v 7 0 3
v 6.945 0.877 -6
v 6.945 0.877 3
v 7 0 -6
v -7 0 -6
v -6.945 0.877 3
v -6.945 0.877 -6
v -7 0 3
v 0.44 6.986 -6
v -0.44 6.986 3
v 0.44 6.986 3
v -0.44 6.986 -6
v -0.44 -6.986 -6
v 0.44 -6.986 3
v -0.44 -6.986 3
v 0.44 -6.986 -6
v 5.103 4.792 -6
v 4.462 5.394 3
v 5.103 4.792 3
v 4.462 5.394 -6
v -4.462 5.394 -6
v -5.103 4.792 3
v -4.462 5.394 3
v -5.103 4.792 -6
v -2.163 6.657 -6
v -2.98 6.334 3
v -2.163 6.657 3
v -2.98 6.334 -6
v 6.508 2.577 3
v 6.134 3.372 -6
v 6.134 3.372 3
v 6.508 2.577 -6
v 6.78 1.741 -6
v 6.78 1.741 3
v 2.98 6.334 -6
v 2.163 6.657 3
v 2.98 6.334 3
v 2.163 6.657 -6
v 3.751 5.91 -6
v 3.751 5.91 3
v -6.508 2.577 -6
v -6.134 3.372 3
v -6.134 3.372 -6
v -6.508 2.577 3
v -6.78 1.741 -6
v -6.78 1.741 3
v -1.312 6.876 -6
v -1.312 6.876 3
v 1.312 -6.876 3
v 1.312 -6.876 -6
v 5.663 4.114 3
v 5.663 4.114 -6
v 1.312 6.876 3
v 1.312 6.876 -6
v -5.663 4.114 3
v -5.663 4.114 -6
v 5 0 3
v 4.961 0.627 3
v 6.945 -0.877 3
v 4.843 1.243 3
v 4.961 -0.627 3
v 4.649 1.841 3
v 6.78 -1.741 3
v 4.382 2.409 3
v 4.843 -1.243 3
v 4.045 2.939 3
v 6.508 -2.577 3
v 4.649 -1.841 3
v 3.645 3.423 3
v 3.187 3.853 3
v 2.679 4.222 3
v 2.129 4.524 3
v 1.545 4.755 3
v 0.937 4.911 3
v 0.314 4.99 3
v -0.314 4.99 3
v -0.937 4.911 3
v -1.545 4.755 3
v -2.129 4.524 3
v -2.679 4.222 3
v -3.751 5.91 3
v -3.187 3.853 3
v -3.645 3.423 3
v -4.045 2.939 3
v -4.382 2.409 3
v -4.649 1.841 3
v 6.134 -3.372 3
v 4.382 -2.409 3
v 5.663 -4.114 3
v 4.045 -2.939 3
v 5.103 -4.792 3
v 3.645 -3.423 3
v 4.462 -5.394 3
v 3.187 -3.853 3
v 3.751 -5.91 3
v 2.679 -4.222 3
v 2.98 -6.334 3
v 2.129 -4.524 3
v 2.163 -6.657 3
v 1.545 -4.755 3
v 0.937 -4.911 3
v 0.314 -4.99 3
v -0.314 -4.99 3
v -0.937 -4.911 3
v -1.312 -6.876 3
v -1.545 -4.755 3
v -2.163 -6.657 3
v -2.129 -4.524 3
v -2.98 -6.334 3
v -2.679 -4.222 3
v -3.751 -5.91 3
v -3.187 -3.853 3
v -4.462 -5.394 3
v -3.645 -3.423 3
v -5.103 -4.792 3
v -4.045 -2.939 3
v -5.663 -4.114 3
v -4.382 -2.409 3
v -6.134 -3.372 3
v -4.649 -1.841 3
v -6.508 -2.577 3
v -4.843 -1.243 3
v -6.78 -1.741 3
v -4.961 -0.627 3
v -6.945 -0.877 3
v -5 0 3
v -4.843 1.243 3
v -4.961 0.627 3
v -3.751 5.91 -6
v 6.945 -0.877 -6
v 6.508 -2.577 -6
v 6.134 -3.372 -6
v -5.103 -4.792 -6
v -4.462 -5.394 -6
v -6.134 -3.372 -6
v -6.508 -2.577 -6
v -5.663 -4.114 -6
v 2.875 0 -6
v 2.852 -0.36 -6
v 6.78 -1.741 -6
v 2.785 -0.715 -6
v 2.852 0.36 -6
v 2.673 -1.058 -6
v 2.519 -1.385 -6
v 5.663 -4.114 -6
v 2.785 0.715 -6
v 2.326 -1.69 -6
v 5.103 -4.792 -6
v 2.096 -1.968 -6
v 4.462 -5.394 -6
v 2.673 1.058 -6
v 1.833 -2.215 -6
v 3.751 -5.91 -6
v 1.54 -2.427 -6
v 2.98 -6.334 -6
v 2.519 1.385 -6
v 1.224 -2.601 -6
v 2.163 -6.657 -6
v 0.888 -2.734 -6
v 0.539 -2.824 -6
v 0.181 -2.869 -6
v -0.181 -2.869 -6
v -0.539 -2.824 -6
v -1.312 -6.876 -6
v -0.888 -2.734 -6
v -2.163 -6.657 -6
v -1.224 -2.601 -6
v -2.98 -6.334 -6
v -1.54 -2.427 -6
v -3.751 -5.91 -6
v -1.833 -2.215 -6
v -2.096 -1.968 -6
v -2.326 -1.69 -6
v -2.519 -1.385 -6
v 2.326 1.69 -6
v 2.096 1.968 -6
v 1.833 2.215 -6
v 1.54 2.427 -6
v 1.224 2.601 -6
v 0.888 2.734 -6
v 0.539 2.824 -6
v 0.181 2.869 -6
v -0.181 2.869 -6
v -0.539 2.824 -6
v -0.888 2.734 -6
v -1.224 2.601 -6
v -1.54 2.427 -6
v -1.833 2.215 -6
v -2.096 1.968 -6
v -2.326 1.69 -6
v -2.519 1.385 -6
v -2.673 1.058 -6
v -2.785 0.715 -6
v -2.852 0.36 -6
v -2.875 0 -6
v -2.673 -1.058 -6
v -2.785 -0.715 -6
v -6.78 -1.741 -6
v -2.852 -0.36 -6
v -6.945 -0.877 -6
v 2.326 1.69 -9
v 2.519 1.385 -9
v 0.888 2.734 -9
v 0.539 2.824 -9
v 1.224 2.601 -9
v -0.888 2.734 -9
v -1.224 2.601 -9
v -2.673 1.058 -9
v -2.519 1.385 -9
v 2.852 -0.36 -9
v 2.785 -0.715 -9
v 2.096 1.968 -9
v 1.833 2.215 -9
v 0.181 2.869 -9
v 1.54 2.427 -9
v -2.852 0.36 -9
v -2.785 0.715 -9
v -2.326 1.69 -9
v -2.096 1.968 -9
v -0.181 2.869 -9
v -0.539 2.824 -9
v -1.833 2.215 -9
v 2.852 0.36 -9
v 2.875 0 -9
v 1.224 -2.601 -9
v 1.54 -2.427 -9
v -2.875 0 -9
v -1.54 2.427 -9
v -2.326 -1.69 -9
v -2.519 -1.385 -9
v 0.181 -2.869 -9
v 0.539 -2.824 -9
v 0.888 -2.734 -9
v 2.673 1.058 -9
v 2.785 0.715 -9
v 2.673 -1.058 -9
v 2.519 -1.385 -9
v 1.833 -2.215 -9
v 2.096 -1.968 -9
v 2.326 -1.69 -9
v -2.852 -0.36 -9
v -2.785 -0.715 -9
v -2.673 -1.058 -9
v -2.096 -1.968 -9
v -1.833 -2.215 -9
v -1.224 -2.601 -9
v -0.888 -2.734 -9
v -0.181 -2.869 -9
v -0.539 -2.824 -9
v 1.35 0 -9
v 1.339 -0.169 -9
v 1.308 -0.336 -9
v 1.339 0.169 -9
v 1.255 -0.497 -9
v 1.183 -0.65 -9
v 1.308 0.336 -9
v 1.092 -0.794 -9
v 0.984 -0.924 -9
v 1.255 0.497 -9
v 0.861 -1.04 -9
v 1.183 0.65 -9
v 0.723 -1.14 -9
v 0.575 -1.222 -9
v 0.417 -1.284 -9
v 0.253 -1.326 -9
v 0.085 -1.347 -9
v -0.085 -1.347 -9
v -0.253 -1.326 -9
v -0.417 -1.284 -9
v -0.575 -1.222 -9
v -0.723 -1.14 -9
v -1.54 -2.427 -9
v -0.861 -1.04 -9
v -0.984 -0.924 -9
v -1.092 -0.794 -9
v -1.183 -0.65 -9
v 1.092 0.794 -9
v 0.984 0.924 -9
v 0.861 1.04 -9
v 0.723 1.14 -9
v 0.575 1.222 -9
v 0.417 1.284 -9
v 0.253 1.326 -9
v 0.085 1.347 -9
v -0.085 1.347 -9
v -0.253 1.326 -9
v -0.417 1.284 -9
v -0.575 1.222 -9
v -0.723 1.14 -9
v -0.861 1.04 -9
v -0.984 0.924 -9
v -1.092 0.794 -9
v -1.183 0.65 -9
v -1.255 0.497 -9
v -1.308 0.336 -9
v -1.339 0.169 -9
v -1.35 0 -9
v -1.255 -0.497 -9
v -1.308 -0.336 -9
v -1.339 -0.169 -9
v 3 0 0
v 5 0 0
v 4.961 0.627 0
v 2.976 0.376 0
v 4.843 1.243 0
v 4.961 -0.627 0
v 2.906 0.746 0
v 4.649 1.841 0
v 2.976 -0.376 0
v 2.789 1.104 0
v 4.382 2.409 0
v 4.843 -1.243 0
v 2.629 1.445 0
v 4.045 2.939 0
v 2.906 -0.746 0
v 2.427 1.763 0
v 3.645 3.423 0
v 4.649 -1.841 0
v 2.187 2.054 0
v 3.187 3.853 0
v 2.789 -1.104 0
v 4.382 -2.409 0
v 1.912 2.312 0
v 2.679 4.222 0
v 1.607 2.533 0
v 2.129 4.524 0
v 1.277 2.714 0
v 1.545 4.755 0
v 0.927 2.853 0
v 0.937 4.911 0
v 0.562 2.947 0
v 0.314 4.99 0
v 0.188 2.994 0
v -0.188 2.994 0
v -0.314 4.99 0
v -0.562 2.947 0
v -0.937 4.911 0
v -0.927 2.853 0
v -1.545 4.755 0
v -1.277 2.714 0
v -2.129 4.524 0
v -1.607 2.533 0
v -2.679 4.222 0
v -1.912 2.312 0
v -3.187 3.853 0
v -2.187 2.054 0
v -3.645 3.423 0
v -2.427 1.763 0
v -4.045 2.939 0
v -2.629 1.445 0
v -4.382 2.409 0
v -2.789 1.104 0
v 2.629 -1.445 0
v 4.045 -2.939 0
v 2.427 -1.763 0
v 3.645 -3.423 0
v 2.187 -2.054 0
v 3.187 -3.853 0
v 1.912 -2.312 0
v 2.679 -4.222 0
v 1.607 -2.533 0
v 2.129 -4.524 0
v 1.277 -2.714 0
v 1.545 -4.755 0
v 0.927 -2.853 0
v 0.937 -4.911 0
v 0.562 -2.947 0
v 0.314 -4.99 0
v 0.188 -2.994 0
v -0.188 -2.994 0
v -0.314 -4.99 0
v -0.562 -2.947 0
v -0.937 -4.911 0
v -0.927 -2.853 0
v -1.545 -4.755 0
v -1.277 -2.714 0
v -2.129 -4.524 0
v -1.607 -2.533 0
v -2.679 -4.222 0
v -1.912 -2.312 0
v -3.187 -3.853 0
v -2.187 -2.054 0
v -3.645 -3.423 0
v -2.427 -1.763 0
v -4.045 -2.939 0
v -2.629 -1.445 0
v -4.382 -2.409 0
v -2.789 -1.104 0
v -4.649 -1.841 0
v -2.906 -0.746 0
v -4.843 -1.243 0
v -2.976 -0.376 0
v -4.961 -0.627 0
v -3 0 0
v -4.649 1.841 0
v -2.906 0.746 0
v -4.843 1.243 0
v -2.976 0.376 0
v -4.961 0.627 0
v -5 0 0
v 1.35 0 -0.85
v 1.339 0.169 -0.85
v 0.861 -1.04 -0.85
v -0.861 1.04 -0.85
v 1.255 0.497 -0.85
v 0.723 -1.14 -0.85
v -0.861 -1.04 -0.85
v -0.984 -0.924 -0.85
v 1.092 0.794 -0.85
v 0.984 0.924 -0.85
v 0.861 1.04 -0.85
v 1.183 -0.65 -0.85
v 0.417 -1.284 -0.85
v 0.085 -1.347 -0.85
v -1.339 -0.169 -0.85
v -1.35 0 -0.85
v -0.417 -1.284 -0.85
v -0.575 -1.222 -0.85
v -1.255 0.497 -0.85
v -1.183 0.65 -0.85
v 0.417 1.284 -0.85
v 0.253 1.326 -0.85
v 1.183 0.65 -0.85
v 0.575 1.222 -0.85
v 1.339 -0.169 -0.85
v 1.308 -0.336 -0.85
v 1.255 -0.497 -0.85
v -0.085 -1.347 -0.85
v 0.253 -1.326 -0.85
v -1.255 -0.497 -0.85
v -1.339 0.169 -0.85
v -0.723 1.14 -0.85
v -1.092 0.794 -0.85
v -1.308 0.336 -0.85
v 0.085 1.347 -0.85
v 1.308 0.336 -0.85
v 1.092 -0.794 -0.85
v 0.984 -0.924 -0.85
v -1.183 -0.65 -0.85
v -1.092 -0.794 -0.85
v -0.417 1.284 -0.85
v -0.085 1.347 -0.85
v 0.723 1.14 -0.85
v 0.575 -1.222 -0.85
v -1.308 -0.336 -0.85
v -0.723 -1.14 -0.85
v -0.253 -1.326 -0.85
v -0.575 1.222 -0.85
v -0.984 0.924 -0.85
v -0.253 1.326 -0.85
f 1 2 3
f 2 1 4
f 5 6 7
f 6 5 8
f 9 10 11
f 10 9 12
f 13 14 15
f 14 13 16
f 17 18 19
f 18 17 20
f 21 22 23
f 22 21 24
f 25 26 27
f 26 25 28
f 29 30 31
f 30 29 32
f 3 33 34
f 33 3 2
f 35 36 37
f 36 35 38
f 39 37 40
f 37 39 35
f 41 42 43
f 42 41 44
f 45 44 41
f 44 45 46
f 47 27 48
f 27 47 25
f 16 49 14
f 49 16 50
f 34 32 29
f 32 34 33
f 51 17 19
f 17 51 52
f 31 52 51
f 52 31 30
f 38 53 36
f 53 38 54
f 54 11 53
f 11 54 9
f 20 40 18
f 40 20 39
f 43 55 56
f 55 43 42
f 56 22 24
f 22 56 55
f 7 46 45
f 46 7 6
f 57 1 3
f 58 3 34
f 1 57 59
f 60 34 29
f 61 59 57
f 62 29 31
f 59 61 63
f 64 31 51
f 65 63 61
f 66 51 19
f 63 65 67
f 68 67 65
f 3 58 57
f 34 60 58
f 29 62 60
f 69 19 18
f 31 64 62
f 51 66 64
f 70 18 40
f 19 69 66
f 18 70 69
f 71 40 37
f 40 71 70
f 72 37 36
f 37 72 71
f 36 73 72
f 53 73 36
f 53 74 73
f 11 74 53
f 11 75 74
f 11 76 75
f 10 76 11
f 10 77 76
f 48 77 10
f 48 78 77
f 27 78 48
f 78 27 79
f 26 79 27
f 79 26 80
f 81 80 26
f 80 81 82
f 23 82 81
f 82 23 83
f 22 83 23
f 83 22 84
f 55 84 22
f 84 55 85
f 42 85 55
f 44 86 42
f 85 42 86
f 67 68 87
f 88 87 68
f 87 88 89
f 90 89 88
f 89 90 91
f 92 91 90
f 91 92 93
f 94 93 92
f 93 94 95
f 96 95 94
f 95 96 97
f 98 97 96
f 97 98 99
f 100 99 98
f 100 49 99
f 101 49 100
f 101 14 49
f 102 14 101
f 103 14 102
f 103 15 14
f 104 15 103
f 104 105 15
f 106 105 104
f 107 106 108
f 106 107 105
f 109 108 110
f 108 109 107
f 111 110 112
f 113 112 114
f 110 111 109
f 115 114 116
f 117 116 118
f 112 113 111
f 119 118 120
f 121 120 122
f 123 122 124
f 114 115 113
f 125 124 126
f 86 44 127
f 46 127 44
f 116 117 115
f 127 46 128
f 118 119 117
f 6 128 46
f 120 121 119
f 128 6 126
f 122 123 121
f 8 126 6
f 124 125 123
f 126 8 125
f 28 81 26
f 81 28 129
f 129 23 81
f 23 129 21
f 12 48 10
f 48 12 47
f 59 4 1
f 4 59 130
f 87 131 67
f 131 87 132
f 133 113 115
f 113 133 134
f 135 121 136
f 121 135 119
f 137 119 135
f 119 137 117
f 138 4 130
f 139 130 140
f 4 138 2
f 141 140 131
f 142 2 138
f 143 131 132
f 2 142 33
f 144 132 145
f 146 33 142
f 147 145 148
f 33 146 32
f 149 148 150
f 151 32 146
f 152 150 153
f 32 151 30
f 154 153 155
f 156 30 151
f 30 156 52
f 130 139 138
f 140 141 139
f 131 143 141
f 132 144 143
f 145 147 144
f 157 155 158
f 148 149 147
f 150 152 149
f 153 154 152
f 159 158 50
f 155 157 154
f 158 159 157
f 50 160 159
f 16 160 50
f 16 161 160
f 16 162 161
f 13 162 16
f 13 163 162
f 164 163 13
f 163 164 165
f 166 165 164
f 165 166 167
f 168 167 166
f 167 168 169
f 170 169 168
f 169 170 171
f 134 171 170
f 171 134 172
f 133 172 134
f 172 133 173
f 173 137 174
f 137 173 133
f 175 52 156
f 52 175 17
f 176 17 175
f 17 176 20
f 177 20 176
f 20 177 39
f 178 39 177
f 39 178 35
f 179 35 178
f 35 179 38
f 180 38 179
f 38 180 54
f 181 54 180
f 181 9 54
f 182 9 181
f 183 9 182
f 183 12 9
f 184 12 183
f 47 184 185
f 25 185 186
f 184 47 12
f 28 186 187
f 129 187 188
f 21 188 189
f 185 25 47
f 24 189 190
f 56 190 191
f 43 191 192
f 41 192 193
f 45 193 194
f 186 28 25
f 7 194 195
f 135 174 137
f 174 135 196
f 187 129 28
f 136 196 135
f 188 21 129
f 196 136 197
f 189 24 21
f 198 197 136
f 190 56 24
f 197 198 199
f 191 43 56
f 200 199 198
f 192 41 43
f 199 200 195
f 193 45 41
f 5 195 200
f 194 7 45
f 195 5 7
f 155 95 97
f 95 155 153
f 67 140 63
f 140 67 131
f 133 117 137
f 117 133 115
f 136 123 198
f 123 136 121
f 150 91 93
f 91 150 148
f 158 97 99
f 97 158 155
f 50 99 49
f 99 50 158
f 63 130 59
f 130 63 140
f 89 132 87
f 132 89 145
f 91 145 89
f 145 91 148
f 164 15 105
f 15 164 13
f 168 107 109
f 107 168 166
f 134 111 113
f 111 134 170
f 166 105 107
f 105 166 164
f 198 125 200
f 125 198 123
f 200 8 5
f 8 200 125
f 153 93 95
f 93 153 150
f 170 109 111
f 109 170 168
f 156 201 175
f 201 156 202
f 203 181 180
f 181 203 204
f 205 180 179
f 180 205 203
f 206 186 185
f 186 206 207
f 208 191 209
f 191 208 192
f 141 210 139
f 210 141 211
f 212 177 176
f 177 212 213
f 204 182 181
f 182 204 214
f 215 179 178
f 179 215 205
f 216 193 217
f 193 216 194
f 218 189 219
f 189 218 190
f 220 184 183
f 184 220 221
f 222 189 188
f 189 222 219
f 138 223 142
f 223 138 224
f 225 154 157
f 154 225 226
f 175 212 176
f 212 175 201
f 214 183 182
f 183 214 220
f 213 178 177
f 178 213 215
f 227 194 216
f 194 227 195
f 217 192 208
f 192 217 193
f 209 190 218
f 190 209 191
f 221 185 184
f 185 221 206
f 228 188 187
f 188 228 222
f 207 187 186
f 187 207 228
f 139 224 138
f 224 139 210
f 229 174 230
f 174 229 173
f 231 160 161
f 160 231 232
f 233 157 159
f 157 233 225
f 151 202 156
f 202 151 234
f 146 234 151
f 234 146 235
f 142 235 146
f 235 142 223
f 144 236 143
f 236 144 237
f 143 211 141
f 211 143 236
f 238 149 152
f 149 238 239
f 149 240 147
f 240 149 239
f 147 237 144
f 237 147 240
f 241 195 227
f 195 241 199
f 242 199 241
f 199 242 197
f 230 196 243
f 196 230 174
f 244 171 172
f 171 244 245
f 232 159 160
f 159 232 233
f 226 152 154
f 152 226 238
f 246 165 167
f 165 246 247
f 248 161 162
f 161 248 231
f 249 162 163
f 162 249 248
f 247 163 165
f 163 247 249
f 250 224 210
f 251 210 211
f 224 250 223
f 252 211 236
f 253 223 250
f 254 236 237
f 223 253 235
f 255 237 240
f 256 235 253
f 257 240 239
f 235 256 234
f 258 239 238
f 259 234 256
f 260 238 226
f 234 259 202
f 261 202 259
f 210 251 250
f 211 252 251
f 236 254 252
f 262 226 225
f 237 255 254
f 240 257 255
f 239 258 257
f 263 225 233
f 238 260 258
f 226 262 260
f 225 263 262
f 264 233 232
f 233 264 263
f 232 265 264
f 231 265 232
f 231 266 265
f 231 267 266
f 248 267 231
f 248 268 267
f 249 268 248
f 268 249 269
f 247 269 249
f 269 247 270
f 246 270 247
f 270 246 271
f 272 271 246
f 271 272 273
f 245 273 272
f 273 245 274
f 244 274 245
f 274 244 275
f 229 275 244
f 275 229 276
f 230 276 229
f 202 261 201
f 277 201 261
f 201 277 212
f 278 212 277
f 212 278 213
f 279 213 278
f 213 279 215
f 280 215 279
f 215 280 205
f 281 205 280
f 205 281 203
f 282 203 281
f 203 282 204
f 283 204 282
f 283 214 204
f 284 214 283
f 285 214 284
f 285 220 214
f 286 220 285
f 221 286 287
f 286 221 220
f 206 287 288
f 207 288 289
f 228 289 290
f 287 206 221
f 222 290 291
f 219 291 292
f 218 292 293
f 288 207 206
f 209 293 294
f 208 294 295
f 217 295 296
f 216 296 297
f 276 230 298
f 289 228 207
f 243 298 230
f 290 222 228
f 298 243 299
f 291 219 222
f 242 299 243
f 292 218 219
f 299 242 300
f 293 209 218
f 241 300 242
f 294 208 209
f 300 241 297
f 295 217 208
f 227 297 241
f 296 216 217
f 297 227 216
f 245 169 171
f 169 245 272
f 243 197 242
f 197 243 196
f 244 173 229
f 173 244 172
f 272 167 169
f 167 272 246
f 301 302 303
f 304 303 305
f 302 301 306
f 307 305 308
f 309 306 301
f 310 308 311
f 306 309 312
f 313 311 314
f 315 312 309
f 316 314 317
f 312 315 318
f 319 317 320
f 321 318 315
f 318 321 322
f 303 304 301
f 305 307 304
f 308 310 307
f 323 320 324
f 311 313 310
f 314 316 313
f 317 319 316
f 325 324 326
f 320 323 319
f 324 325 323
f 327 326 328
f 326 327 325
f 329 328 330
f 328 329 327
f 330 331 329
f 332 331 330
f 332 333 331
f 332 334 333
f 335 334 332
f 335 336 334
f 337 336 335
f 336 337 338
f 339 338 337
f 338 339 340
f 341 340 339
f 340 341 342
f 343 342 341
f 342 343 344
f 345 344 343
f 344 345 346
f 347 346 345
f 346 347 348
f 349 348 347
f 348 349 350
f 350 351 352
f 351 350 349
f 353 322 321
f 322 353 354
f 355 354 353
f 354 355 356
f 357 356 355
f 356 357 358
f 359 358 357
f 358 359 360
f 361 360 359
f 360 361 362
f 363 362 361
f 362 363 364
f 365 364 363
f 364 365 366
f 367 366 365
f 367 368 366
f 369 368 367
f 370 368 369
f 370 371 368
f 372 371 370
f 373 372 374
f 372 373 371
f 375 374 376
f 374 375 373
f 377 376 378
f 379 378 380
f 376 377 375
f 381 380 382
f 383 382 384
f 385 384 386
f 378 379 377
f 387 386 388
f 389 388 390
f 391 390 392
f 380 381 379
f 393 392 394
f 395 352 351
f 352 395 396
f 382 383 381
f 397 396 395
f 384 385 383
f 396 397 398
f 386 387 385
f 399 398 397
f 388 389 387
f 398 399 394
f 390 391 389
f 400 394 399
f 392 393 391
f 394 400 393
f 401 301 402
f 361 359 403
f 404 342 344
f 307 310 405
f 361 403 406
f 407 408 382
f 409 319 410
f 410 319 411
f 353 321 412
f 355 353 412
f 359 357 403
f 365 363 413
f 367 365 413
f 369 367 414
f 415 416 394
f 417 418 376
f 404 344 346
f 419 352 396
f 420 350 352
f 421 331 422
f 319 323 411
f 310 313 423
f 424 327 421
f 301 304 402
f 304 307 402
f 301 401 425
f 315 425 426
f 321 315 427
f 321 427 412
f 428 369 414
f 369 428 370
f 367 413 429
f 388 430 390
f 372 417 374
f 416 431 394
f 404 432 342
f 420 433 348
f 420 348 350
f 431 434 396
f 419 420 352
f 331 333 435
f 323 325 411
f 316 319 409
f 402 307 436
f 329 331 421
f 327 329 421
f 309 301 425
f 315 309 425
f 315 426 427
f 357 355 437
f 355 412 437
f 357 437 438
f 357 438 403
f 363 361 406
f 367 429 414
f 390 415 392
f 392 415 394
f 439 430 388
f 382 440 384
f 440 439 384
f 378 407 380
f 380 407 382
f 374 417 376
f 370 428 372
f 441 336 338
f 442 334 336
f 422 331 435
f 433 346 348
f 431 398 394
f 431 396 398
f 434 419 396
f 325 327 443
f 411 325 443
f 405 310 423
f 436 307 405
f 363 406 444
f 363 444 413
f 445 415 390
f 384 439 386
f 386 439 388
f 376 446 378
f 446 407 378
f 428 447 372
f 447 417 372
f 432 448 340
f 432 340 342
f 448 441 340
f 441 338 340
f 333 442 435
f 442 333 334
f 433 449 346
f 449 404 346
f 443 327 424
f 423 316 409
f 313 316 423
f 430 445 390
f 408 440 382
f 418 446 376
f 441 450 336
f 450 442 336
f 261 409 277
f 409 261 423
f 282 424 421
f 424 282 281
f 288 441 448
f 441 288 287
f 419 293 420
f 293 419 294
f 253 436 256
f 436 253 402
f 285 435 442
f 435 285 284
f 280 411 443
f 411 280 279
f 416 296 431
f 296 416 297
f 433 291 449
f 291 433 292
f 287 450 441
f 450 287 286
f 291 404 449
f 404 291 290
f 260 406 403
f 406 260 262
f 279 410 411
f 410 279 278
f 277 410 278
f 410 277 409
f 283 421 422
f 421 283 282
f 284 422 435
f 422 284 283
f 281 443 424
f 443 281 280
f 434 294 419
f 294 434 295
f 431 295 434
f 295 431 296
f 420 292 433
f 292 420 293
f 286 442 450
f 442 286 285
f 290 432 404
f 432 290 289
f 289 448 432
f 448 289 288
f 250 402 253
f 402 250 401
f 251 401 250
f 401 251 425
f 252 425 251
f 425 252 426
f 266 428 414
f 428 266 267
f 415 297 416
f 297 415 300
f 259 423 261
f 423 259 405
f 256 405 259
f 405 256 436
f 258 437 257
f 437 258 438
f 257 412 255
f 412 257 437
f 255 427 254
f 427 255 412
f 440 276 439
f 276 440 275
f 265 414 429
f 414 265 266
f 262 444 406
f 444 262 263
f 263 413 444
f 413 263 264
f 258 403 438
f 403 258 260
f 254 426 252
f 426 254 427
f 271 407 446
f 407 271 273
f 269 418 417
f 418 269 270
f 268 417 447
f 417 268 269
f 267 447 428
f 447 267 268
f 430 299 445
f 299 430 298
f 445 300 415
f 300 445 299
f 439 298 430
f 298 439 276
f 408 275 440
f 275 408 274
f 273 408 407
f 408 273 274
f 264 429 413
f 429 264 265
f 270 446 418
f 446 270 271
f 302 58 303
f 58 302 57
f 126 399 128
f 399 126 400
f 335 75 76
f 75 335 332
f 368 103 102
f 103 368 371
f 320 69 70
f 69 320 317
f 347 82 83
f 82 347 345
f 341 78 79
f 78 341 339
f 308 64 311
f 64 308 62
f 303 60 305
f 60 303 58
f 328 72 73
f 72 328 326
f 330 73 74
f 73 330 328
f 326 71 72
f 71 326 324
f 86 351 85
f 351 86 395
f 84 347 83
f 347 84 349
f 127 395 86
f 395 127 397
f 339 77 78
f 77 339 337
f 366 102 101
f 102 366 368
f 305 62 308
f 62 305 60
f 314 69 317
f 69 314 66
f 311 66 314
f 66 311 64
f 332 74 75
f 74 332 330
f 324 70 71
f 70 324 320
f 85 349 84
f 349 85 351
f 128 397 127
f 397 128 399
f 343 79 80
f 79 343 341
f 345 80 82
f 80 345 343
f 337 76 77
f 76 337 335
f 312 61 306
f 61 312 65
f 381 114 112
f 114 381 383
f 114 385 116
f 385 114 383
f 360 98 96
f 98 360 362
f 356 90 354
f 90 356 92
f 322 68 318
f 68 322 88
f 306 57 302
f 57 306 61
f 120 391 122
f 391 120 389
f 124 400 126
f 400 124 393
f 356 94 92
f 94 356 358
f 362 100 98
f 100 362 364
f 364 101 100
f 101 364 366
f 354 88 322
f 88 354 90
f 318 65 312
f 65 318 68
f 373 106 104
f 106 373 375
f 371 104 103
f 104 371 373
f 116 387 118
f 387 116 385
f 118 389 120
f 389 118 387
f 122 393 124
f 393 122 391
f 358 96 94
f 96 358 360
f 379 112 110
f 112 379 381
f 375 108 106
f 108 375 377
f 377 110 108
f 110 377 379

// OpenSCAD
$fn = 50;


difference() {
	union() {
		translate(v = [0, 0, -6.0000000000]) {
			cylinder(h = 9, r = 7.0000000000);
		}
		#translate(v = [0, 0, -9.0000000000]) {
			cylinder(h = 9, r = 2.8750000000);
		}
	}
	union() {
		translate(v = [0, 0, 0]) {
			rotate(a = [0, 0, 0]) {
				difference() {
					union() {
						translate(v = [0, 0, -9.0000000000]) {
							cylinder(h = 9, r = 1.0000000000);
						}
						translate(v = [0, 0, -0.8500000000]) {
							cylinder(h = 0.8500000000, r1 = 1.3500000000, r2 = 3.0000000000);
						}
						translate(v = [0, 0, -9.0000000000]) {
							cylinder(h = 9, r = 1.3500000000);
						}
						translate(v = [0, 0, -9.0000000000]) {
							cylinder(h = 9, r = 1.0000000000);
						}
					}
					union();
				}
			}
		}
		#cylinder(h = 3, r = 5.0000000000);
	}
}
